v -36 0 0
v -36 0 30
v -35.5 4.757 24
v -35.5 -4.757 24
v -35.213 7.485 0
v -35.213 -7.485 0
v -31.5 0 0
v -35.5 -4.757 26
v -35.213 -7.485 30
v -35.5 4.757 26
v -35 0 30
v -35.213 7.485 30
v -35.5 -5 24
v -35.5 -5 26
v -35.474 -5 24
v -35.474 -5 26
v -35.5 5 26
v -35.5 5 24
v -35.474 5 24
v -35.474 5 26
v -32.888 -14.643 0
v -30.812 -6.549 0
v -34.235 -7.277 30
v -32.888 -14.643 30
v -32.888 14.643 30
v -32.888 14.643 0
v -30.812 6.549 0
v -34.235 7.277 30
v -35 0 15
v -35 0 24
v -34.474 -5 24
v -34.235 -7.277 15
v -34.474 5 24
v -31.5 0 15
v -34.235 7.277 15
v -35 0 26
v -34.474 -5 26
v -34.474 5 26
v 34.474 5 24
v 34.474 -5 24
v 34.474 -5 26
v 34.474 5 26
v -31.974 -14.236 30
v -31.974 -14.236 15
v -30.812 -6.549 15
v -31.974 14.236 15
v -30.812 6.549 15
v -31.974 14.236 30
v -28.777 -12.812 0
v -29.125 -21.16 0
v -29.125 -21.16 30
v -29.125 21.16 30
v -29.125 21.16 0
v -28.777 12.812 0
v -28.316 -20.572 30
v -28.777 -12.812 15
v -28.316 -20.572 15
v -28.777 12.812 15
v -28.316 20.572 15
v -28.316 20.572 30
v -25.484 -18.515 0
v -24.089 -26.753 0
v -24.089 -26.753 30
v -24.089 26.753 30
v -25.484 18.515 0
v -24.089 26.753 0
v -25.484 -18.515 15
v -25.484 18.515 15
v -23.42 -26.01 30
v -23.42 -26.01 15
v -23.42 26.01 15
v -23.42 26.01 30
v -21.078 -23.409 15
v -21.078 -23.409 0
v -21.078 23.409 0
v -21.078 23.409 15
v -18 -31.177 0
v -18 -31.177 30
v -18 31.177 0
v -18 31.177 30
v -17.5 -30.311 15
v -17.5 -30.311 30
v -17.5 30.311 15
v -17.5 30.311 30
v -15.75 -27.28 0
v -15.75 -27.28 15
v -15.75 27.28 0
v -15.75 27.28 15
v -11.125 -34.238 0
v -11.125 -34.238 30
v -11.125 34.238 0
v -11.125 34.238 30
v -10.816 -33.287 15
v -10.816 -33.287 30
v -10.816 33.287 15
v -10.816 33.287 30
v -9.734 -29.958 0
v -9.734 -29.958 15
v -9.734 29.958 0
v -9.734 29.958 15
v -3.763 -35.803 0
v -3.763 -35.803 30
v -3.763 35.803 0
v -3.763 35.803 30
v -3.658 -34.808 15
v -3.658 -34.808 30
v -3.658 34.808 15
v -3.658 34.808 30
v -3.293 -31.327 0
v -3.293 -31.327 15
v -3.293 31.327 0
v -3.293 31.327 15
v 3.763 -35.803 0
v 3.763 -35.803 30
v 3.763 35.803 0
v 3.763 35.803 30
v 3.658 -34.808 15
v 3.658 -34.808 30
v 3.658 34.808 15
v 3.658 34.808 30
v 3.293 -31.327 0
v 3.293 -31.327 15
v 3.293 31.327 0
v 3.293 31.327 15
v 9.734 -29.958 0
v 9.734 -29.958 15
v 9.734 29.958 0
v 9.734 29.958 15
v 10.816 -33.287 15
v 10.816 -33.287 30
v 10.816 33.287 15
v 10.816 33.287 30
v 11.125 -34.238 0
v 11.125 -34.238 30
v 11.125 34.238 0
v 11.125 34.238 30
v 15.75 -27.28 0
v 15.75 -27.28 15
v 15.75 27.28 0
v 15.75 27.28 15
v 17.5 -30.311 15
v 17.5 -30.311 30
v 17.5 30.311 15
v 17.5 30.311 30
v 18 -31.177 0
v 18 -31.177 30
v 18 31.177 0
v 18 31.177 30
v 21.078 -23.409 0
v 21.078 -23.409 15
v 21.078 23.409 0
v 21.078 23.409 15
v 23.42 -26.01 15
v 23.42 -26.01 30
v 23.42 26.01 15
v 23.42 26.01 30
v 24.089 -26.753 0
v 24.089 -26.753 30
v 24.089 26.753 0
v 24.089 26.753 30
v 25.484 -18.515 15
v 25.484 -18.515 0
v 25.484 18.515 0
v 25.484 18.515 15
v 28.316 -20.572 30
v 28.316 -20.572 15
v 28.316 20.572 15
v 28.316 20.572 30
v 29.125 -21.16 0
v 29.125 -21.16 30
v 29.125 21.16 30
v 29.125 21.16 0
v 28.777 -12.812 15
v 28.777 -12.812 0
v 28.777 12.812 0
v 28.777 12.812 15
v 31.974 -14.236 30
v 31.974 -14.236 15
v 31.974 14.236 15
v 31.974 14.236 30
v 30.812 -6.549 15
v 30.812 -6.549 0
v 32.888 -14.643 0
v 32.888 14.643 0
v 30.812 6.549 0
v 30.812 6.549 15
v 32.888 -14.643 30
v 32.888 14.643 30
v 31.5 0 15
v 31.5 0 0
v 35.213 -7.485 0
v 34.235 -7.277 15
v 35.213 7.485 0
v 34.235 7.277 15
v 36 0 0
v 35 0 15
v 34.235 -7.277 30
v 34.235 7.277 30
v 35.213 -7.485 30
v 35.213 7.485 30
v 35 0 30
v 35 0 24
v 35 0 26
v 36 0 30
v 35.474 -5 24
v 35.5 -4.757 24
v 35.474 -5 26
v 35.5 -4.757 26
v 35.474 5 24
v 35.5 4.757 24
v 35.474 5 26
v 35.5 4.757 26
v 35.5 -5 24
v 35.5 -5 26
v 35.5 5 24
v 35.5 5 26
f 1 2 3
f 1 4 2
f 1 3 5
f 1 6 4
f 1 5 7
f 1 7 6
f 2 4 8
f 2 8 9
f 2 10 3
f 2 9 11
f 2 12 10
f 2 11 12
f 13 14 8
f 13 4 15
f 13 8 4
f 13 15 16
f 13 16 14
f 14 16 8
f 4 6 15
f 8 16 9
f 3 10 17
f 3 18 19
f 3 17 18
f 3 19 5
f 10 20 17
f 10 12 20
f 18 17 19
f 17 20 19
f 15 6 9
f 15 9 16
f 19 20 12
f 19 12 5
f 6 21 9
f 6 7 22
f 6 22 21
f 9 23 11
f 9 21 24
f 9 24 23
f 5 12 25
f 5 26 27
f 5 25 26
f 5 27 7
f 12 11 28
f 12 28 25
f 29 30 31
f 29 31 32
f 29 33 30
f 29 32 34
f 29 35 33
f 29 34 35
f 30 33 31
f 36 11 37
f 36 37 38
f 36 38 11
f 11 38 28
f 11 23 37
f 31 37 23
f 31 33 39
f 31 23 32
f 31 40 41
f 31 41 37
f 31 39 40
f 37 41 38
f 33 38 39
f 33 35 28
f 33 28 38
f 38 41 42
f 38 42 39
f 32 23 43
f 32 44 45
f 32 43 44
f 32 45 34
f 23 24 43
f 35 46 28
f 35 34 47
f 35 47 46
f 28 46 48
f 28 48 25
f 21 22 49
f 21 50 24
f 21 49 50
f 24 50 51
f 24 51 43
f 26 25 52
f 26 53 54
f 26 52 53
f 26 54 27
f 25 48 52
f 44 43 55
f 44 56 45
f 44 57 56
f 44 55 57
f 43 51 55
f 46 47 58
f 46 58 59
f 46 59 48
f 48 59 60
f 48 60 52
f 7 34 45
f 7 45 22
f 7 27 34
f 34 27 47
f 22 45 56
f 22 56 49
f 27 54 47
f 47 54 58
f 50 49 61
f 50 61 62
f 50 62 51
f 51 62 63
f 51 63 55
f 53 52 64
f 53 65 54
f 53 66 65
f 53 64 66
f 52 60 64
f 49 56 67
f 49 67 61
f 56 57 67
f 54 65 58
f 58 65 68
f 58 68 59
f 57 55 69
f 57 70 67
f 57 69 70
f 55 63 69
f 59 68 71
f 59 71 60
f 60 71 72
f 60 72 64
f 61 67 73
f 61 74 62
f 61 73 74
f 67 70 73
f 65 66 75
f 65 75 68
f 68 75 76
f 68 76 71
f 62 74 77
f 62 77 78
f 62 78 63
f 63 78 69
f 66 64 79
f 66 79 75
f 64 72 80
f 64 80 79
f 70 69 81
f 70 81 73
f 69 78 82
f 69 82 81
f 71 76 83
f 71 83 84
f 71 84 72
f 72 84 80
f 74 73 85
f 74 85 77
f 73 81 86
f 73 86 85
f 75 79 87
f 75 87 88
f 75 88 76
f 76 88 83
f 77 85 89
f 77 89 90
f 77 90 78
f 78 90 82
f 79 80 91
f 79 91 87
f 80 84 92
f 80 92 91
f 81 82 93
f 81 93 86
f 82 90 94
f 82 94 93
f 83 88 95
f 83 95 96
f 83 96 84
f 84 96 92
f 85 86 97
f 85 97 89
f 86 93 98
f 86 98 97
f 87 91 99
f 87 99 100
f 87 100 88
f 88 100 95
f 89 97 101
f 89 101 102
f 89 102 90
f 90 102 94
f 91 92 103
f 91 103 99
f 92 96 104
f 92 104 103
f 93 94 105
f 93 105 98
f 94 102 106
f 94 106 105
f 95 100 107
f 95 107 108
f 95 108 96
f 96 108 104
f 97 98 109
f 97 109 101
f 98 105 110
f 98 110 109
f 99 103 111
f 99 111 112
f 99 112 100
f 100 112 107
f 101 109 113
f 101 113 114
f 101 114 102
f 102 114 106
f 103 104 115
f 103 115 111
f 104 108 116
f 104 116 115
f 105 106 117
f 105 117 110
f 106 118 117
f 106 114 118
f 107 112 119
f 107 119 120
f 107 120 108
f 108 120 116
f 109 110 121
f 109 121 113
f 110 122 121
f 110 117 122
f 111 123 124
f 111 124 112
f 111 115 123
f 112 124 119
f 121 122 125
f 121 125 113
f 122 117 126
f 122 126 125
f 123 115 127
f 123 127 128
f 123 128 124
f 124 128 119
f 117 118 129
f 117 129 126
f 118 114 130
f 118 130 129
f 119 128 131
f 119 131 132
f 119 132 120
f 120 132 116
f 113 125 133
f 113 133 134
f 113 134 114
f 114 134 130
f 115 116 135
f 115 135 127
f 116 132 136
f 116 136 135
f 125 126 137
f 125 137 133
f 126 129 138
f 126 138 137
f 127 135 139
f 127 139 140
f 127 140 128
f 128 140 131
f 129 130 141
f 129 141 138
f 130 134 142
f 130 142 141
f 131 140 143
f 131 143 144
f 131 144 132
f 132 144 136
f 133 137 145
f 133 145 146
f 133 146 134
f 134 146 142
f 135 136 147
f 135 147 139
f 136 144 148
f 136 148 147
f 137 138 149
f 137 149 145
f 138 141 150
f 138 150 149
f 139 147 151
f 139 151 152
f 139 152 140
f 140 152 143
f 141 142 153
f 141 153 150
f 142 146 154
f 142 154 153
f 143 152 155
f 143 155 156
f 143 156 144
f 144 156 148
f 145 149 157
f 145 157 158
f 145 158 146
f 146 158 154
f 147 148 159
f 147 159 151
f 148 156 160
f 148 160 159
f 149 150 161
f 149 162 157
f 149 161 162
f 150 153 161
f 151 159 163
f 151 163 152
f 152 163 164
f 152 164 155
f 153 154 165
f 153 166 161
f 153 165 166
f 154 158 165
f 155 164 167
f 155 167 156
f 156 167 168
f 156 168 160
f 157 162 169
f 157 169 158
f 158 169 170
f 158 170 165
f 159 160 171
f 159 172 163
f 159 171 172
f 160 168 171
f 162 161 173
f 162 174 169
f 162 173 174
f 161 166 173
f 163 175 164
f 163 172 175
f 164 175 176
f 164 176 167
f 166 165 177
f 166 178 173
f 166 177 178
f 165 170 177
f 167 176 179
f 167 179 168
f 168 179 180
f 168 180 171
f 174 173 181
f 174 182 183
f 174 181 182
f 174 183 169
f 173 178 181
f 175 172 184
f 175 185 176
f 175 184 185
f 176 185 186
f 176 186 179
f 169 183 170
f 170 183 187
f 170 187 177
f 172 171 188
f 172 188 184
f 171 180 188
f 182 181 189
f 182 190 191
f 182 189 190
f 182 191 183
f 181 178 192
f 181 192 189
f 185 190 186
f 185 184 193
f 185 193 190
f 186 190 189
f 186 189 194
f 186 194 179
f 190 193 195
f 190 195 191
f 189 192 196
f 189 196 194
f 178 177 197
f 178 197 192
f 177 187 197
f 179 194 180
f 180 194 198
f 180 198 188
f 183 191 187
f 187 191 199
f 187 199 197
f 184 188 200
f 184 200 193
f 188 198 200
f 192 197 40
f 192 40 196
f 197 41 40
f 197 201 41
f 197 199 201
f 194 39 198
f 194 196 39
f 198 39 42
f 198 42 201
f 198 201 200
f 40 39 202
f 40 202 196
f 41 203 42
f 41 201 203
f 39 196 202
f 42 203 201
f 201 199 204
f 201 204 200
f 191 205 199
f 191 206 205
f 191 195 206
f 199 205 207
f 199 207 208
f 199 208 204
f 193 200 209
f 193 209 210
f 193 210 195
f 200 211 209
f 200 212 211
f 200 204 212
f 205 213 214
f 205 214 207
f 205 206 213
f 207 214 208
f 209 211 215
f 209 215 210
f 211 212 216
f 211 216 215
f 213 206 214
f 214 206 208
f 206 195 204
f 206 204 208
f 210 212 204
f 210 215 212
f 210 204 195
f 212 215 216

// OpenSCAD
// Moon base stand using cylinder primitives
outer_d = 72; // mm
wall_thickness = 1; // mm
height = 26 + 4; // mm
base_thickness = 1; // mm
inner_cylinder_d = 65; // mm (62 mm internal diameter)
inner_height = 15; // mm
beam_d = 10; // mm
beam_h = 2; // mm

inner_d = inner_cylinder_d - 2 * wall_thickness;


module beam(){

    // Flat beam on top spanning across the diameter
    translate([0, 0, height - beam_h/2 - 4])
        cube([outer_d-1, beam_d, beam_h], center=true);
}


module box(){
    difference(){
        cylinder(h=height, d=outer_d);
       
        
        translate([0, 0, height/2])
			cylinder(
					h=height + 2, 
					d=outer_d - 2 * wall_thickness);
			
        translate([0, 0, -1])
            cylinder(h=inner_height+2, d=inner_d);
    }
}

box();
beam();
